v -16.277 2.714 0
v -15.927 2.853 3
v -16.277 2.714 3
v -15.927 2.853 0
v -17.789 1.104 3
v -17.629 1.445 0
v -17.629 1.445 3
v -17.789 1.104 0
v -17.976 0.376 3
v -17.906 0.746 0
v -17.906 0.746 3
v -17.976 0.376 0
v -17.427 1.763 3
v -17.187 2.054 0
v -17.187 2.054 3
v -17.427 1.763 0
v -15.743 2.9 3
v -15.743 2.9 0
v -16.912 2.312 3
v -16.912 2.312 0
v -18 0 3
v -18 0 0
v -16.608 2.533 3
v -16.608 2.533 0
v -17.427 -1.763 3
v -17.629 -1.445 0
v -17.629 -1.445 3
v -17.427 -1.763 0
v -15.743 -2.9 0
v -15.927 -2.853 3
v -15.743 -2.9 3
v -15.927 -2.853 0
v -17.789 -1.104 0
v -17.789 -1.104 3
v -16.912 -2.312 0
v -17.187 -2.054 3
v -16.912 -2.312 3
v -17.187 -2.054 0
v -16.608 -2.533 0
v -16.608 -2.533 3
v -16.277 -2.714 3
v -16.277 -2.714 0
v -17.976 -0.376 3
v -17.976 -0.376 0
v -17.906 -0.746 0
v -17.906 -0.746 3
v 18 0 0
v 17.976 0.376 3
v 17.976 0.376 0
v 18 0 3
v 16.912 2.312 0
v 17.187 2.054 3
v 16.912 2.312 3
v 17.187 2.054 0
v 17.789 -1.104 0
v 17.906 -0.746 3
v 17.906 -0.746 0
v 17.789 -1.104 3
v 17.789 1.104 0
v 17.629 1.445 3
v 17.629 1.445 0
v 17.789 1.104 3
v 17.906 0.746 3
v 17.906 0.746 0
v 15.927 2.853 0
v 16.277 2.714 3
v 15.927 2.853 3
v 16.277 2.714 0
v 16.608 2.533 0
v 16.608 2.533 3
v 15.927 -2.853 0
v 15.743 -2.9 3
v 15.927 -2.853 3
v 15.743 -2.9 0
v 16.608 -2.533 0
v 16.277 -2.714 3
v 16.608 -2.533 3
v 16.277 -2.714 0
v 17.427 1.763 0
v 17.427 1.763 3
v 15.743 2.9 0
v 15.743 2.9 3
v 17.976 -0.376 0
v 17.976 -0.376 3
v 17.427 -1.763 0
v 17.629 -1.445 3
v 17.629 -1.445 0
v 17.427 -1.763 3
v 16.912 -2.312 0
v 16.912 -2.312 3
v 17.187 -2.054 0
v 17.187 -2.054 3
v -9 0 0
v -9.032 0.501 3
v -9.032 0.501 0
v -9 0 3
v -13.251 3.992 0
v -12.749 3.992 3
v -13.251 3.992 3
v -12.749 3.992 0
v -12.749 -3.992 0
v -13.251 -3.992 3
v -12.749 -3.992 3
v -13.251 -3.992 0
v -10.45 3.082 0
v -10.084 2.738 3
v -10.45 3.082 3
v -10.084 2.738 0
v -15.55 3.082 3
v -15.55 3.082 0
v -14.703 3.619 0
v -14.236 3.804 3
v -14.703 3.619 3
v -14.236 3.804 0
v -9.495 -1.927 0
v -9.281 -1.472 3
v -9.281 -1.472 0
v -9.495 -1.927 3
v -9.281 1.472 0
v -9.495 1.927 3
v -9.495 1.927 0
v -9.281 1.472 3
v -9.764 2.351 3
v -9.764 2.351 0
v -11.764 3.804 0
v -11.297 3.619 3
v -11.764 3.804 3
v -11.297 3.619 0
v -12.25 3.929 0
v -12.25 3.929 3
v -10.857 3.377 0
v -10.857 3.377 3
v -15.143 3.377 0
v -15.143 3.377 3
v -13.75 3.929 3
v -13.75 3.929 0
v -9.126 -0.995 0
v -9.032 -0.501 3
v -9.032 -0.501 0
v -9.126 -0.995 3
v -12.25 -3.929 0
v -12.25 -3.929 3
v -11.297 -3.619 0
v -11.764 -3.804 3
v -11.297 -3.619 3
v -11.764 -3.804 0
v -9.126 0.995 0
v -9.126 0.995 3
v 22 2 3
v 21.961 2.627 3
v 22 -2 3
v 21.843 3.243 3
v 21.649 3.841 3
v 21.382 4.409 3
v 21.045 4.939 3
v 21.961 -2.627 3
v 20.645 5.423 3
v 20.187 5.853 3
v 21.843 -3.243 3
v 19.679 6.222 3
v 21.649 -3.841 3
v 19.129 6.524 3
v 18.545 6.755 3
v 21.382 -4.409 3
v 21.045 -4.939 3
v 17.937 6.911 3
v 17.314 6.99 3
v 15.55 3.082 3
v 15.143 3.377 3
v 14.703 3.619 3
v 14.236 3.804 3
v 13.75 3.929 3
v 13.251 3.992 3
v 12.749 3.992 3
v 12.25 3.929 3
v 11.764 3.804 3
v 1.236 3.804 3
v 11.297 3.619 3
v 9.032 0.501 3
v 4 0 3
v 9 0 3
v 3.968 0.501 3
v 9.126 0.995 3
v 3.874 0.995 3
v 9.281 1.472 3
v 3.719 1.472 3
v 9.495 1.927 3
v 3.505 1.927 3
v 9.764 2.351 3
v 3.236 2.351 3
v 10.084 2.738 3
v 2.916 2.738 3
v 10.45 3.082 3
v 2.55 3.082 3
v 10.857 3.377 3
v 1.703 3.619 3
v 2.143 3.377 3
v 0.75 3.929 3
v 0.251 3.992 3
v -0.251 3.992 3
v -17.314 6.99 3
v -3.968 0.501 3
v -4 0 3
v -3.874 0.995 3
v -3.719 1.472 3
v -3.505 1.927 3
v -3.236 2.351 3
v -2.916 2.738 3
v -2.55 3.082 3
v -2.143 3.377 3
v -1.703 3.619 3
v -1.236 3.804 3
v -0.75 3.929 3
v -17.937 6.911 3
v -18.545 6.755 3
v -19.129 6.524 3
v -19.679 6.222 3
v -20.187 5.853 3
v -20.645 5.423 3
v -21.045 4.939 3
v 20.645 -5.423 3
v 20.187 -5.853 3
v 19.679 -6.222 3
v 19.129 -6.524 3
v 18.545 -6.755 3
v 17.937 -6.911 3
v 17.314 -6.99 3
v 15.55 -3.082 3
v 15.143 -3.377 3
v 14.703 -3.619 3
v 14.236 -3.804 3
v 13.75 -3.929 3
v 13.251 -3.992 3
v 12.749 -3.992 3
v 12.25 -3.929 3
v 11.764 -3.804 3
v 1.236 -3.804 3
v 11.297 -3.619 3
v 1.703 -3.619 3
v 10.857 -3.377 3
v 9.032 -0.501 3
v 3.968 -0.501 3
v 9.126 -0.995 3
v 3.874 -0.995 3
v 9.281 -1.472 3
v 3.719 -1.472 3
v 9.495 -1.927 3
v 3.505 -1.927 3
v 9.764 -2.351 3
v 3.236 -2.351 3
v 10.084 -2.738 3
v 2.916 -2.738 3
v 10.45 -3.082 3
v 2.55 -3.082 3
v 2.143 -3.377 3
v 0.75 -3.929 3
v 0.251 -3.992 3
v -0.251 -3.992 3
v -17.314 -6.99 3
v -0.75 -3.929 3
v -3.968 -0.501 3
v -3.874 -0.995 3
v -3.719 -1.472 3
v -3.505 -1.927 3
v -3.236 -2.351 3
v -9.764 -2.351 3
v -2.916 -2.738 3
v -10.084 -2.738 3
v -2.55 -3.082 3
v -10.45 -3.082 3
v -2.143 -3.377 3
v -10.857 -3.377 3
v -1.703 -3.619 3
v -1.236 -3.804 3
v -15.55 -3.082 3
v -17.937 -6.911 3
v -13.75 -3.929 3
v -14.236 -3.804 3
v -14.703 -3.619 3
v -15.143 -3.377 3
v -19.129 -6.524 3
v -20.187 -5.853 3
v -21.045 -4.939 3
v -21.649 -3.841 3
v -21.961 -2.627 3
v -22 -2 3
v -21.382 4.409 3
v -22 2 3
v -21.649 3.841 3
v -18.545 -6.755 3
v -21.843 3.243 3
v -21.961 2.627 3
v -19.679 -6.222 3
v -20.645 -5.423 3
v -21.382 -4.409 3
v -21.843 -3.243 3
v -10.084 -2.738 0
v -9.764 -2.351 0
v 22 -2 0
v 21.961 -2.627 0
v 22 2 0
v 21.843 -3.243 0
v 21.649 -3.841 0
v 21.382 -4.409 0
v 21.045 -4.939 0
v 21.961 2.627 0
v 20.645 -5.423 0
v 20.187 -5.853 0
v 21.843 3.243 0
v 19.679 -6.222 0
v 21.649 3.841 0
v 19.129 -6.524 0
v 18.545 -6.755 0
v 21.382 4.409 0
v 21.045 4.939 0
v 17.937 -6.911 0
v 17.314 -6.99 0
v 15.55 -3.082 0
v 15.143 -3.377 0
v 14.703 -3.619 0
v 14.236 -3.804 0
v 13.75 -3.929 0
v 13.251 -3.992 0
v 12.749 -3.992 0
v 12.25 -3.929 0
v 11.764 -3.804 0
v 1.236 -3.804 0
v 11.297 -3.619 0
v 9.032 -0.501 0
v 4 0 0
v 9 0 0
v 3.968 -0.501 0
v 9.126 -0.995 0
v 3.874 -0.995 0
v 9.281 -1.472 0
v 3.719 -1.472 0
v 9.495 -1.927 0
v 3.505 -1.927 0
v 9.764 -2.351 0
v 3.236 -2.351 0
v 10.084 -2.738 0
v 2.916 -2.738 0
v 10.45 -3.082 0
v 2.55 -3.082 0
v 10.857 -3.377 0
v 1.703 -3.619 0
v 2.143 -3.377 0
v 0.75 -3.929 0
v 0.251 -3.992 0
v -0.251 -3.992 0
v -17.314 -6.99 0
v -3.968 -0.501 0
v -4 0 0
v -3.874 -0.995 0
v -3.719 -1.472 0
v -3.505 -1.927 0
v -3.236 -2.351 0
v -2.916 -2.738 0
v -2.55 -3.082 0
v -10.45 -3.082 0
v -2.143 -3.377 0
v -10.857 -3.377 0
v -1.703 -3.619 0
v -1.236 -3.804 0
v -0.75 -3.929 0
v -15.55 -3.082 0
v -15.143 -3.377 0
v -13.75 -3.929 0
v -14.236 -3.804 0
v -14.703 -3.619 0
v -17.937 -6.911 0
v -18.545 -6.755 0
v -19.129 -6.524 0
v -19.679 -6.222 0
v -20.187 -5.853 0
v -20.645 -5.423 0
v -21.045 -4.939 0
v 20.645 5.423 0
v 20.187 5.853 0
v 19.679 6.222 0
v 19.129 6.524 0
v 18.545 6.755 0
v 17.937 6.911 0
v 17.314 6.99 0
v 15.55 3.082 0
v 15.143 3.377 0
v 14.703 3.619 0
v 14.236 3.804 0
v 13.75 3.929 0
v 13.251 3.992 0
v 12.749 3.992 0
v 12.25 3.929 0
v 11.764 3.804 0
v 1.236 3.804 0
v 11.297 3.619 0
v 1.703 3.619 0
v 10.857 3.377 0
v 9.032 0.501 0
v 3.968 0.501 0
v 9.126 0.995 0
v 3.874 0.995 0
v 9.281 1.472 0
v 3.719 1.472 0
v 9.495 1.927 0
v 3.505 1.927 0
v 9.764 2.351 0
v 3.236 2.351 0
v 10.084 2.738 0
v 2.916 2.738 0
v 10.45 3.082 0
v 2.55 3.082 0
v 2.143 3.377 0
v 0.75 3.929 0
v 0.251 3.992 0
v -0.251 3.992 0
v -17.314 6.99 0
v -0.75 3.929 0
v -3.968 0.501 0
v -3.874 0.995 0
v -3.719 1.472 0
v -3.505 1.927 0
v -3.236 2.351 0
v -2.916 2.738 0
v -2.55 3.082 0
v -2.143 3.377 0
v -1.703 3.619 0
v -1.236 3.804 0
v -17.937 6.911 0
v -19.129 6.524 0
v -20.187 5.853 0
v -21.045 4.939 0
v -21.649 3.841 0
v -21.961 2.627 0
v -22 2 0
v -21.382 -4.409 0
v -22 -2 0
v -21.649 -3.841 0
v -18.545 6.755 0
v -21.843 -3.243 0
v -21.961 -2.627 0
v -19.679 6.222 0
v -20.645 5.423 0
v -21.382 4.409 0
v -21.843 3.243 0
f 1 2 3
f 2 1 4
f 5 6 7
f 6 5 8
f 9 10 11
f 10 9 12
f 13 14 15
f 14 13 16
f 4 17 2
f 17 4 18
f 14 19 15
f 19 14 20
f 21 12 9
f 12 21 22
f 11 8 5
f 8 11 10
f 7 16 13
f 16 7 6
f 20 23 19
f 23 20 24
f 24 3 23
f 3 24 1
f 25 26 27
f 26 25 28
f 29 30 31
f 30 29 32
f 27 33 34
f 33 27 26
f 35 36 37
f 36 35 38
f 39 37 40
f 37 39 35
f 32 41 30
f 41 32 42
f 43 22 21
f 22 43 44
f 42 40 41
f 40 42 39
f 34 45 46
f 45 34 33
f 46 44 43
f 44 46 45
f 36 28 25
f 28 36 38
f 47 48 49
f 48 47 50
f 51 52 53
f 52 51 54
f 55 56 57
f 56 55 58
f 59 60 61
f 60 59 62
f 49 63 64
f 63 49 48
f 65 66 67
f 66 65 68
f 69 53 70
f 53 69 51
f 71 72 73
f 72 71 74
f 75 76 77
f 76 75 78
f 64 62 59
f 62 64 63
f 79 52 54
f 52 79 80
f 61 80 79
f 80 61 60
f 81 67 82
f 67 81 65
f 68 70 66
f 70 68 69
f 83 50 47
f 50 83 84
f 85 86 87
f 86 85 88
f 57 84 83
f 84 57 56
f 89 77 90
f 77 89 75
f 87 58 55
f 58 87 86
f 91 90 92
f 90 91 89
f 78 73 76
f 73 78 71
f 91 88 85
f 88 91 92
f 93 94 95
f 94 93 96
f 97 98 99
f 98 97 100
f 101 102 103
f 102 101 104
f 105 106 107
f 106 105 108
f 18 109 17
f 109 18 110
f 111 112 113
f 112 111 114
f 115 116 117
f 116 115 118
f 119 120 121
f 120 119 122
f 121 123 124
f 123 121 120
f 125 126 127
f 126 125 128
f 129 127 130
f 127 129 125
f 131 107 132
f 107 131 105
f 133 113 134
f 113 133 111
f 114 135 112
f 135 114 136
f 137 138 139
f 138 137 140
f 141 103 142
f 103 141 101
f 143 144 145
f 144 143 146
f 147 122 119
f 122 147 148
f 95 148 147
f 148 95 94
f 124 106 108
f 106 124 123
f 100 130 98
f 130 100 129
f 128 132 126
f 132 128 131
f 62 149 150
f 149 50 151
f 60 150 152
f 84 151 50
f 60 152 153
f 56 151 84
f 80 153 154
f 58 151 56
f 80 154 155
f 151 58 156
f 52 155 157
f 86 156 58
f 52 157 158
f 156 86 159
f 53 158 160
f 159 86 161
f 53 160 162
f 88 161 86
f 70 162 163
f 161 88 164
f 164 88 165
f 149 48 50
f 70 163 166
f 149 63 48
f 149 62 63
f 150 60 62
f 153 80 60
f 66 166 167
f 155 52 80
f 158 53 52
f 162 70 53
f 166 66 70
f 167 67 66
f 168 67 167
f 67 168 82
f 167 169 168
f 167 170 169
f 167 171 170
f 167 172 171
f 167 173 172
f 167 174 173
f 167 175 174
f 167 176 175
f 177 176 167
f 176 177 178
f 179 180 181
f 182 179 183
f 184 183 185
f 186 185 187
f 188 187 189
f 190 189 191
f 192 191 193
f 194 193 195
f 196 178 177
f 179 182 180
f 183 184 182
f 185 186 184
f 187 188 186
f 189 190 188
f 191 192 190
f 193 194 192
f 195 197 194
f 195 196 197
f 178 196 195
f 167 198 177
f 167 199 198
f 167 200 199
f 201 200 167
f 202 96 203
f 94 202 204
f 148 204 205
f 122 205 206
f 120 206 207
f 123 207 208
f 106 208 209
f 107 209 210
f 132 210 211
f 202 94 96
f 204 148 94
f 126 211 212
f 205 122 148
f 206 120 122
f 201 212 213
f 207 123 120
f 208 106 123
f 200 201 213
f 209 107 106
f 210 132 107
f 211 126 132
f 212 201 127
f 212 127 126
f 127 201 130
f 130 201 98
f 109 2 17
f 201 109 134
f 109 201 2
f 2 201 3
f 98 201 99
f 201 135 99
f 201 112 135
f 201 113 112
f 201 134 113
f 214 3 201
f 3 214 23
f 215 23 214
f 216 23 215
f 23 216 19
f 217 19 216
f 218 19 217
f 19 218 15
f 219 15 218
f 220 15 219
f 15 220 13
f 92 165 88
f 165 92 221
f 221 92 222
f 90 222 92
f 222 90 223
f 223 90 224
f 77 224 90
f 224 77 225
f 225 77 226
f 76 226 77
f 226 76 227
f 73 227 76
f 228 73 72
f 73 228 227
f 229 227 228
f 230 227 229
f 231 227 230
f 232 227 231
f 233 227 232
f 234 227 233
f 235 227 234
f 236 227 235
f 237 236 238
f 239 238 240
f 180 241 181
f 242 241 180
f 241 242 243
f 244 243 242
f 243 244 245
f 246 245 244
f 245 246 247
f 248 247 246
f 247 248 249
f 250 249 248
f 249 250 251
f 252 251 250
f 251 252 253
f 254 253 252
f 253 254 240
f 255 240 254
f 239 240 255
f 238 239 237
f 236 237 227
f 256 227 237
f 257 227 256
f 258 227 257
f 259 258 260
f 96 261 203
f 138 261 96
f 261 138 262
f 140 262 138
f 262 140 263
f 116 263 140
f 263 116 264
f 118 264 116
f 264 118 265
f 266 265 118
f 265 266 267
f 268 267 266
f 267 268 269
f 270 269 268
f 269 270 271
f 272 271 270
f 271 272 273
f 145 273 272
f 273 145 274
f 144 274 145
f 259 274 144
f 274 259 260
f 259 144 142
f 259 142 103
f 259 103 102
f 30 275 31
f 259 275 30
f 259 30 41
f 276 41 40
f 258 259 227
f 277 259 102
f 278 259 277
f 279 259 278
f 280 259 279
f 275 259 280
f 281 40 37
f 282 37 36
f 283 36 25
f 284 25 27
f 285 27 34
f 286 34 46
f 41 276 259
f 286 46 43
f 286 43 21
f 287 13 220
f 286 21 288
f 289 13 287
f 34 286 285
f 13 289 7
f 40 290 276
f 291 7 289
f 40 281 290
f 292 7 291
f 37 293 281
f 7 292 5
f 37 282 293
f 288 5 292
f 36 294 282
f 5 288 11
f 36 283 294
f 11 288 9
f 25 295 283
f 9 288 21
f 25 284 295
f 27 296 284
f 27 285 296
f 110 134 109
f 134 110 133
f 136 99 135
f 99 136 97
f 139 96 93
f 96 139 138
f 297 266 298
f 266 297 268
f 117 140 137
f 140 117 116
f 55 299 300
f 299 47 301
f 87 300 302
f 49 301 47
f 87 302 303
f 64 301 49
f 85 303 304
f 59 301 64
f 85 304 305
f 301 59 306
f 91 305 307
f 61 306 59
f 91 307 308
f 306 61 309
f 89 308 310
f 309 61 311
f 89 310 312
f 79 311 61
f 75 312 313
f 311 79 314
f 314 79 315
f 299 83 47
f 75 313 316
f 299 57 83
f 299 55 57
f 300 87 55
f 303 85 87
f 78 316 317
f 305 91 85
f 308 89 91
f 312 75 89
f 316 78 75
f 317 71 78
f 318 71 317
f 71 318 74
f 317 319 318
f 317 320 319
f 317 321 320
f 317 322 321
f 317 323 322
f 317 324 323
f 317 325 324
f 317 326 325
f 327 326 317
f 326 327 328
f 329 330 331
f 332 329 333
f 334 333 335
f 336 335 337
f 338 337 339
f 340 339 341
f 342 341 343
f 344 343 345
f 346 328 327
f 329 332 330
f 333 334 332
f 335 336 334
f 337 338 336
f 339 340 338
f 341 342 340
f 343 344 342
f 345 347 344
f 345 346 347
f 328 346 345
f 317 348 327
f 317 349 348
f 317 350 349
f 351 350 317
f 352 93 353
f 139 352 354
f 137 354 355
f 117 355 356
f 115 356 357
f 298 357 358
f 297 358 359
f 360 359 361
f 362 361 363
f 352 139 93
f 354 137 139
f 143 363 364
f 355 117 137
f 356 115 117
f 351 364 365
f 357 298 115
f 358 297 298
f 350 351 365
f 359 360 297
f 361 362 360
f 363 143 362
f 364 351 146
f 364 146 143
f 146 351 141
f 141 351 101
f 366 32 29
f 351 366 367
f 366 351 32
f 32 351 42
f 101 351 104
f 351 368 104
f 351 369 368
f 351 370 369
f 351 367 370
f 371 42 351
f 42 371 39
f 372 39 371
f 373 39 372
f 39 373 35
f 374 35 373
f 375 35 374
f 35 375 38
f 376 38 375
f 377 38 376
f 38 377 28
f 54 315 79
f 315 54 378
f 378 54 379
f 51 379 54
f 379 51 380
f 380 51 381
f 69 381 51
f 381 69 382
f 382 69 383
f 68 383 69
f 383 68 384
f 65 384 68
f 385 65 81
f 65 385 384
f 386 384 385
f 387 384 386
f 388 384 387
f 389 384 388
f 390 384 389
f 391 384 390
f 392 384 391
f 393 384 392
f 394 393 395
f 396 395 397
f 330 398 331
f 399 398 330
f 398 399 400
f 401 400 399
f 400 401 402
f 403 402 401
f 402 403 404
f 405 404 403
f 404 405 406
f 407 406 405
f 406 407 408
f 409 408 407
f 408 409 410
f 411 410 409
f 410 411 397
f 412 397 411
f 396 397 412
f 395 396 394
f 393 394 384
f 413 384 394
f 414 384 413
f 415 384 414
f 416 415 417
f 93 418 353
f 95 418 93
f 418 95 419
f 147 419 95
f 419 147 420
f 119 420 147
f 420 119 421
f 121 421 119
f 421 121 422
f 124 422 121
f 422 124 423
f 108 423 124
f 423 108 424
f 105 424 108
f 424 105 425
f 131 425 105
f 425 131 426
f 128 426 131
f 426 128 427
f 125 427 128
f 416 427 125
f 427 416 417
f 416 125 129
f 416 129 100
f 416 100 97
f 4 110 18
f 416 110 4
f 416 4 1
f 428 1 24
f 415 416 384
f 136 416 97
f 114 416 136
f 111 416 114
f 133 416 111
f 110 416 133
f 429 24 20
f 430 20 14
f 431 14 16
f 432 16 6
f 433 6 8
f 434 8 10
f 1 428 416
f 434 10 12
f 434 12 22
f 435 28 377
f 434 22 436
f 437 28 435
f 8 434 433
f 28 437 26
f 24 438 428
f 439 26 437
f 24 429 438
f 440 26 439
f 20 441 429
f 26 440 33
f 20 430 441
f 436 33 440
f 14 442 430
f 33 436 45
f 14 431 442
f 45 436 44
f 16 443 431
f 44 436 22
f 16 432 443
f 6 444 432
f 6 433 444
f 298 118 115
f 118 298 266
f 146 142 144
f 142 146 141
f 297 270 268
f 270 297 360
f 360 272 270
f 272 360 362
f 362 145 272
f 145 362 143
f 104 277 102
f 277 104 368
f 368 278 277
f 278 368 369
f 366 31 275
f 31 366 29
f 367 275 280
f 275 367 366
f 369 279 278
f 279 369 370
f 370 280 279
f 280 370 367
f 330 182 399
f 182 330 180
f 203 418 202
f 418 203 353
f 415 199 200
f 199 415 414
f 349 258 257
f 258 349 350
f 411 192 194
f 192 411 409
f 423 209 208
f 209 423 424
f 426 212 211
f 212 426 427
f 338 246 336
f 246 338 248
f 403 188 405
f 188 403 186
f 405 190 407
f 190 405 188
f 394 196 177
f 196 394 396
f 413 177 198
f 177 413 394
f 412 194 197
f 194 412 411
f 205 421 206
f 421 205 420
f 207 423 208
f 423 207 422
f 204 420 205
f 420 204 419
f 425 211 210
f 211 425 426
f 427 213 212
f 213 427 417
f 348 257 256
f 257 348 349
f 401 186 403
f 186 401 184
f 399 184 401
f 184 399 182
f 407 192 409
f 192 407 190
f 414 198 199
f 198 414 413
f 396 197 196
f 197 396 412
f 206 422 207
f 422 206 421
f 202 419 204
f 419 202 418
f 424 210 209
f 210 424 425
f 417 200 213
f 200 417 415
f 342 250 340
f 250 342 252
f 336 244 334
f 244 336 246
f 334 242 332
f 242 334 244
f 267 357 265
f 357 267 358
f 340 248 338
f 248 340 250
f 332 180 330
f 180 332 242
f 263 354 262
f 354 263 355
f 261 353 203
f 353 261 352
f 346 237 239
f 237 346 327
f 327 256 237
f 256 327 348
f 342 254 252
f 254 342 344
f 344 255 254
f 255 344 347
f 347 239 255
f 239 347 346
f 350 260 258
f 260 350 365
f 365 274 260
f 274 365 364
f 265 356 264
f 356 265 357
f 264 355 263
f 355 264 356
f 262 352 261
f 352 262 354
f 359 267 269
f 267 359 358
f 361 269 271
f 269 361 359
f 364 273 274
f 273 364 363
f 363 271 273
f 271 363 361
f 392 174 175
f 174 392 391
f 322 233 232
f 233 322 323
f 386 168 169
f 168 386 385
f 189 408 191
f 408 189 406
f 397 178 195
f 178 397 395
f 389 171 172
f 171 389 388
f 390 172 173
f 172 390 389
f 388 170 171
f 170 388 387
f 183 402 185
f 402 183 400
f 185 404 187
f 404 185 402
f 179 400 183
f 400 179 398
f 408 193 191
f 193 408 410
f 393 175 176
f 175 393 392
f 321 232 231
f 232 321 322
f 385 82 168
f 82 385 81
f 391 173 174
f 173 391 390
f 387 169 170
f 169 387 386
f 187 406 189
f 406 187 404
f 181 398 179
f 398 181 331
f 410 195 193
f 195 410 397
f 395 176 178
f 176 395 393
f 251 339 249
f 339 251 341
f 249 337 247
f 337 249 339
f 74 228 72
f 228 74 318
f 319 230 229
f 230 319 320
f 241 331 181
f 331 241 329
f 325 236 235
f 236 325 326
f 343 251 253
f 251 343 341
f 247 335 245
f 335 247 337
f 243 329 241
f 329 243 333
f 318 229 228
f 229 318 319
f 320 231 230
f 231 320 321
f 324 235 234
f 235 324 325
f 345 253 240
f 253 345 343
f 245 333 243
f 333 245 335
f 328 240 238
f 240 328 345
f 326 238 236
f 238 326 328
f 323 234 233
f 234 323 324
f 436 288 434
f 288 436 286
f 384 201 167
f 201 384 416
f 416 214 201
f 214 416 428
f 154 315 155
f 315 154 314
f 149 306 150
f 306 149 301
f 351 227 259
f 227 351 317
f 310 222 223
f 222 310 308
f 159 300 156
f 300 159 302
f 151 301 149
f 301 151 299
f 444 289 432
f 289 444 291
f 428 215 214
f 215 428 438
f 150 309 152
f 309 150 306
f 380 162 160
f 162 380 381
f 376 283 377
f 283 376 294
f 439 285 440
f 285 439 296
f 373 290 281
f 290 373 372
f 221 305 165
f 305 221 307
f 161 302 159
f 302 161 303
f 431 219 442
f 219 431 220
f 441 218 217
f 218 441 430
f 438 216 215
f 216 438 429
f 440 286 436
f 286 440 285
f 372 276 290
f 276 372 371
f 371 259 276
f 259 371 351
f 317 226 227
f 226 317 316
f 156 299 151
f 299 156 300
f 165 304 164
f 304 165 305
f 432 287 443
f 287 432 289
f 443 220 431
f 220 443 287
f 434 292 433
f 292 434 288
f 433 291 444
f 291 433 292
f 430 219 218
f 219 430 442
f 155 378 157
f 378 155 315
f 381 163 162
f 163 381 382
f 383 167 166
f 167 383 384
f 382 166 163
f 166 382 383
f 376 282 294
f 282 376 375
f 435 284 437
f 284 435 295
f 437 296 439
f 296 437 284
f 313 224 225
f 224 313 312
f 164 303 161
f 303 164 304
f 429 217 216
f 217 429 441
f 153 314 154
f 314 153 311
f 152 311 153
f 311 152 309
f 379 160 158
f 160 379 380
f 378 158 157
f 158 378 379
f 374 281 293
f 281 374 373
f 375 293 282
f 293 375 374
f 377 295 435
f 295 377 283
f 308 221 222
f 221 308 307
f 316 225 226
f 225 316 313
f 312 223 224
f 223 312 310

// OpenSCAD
$fn = 50;


difference() {
	union() {
		hull() {
			translate(v = [-17.0000000000, 2.0000000000, 0]) {
				cylinder(h = 3, r = 5);
			}
			translate(v = [17.0000000000, 2.0000000000, 0]) {
				cylinder(h = 3, r = 5);
			}
			translate(v = [-17.0000000000, -2.0000000000, 0]) {
				cylinder(h = 3, r = 5);
			}
			translate(v = [17.0000000000, -2.0000000000, 0]) {
				cylinder(h = 3, r = 5);
			}
		}
	}
	union() {
		#translate(v = [-15.0000000000, 0.0000000000, -100.0000000000]) {
			cylinder(h = 200, r = 3.0000000000);
		}
		#translate(v = [-15.0000000000, 0.0000000000, -100.0000000000]) {
			cylinder(h = 200, r = 3.0000000000);
		}
		#translate(v = [15.0000000000, 0.0000000000, -100.0000000000]) {
			cylinder(h = 200, r = 3.0000000000);
		}
		#translate(v = [15.0000000000, 0.0000000000, -100.0000000000]) {
			cylinder(h = 200, r = 3.0000000000);
		}
		#translate(v = [-13.0000000000, 0, 0]) {
			cylinder(h = 3, r = 4.0000000000);
		}
		#cylinder(h = 3, r = 4.0000000000);
		#translate(v = [13.0000000000, 0, 0]) {
			cylinder(h = 3, r = 4.0000000000);
		}
	}
}
